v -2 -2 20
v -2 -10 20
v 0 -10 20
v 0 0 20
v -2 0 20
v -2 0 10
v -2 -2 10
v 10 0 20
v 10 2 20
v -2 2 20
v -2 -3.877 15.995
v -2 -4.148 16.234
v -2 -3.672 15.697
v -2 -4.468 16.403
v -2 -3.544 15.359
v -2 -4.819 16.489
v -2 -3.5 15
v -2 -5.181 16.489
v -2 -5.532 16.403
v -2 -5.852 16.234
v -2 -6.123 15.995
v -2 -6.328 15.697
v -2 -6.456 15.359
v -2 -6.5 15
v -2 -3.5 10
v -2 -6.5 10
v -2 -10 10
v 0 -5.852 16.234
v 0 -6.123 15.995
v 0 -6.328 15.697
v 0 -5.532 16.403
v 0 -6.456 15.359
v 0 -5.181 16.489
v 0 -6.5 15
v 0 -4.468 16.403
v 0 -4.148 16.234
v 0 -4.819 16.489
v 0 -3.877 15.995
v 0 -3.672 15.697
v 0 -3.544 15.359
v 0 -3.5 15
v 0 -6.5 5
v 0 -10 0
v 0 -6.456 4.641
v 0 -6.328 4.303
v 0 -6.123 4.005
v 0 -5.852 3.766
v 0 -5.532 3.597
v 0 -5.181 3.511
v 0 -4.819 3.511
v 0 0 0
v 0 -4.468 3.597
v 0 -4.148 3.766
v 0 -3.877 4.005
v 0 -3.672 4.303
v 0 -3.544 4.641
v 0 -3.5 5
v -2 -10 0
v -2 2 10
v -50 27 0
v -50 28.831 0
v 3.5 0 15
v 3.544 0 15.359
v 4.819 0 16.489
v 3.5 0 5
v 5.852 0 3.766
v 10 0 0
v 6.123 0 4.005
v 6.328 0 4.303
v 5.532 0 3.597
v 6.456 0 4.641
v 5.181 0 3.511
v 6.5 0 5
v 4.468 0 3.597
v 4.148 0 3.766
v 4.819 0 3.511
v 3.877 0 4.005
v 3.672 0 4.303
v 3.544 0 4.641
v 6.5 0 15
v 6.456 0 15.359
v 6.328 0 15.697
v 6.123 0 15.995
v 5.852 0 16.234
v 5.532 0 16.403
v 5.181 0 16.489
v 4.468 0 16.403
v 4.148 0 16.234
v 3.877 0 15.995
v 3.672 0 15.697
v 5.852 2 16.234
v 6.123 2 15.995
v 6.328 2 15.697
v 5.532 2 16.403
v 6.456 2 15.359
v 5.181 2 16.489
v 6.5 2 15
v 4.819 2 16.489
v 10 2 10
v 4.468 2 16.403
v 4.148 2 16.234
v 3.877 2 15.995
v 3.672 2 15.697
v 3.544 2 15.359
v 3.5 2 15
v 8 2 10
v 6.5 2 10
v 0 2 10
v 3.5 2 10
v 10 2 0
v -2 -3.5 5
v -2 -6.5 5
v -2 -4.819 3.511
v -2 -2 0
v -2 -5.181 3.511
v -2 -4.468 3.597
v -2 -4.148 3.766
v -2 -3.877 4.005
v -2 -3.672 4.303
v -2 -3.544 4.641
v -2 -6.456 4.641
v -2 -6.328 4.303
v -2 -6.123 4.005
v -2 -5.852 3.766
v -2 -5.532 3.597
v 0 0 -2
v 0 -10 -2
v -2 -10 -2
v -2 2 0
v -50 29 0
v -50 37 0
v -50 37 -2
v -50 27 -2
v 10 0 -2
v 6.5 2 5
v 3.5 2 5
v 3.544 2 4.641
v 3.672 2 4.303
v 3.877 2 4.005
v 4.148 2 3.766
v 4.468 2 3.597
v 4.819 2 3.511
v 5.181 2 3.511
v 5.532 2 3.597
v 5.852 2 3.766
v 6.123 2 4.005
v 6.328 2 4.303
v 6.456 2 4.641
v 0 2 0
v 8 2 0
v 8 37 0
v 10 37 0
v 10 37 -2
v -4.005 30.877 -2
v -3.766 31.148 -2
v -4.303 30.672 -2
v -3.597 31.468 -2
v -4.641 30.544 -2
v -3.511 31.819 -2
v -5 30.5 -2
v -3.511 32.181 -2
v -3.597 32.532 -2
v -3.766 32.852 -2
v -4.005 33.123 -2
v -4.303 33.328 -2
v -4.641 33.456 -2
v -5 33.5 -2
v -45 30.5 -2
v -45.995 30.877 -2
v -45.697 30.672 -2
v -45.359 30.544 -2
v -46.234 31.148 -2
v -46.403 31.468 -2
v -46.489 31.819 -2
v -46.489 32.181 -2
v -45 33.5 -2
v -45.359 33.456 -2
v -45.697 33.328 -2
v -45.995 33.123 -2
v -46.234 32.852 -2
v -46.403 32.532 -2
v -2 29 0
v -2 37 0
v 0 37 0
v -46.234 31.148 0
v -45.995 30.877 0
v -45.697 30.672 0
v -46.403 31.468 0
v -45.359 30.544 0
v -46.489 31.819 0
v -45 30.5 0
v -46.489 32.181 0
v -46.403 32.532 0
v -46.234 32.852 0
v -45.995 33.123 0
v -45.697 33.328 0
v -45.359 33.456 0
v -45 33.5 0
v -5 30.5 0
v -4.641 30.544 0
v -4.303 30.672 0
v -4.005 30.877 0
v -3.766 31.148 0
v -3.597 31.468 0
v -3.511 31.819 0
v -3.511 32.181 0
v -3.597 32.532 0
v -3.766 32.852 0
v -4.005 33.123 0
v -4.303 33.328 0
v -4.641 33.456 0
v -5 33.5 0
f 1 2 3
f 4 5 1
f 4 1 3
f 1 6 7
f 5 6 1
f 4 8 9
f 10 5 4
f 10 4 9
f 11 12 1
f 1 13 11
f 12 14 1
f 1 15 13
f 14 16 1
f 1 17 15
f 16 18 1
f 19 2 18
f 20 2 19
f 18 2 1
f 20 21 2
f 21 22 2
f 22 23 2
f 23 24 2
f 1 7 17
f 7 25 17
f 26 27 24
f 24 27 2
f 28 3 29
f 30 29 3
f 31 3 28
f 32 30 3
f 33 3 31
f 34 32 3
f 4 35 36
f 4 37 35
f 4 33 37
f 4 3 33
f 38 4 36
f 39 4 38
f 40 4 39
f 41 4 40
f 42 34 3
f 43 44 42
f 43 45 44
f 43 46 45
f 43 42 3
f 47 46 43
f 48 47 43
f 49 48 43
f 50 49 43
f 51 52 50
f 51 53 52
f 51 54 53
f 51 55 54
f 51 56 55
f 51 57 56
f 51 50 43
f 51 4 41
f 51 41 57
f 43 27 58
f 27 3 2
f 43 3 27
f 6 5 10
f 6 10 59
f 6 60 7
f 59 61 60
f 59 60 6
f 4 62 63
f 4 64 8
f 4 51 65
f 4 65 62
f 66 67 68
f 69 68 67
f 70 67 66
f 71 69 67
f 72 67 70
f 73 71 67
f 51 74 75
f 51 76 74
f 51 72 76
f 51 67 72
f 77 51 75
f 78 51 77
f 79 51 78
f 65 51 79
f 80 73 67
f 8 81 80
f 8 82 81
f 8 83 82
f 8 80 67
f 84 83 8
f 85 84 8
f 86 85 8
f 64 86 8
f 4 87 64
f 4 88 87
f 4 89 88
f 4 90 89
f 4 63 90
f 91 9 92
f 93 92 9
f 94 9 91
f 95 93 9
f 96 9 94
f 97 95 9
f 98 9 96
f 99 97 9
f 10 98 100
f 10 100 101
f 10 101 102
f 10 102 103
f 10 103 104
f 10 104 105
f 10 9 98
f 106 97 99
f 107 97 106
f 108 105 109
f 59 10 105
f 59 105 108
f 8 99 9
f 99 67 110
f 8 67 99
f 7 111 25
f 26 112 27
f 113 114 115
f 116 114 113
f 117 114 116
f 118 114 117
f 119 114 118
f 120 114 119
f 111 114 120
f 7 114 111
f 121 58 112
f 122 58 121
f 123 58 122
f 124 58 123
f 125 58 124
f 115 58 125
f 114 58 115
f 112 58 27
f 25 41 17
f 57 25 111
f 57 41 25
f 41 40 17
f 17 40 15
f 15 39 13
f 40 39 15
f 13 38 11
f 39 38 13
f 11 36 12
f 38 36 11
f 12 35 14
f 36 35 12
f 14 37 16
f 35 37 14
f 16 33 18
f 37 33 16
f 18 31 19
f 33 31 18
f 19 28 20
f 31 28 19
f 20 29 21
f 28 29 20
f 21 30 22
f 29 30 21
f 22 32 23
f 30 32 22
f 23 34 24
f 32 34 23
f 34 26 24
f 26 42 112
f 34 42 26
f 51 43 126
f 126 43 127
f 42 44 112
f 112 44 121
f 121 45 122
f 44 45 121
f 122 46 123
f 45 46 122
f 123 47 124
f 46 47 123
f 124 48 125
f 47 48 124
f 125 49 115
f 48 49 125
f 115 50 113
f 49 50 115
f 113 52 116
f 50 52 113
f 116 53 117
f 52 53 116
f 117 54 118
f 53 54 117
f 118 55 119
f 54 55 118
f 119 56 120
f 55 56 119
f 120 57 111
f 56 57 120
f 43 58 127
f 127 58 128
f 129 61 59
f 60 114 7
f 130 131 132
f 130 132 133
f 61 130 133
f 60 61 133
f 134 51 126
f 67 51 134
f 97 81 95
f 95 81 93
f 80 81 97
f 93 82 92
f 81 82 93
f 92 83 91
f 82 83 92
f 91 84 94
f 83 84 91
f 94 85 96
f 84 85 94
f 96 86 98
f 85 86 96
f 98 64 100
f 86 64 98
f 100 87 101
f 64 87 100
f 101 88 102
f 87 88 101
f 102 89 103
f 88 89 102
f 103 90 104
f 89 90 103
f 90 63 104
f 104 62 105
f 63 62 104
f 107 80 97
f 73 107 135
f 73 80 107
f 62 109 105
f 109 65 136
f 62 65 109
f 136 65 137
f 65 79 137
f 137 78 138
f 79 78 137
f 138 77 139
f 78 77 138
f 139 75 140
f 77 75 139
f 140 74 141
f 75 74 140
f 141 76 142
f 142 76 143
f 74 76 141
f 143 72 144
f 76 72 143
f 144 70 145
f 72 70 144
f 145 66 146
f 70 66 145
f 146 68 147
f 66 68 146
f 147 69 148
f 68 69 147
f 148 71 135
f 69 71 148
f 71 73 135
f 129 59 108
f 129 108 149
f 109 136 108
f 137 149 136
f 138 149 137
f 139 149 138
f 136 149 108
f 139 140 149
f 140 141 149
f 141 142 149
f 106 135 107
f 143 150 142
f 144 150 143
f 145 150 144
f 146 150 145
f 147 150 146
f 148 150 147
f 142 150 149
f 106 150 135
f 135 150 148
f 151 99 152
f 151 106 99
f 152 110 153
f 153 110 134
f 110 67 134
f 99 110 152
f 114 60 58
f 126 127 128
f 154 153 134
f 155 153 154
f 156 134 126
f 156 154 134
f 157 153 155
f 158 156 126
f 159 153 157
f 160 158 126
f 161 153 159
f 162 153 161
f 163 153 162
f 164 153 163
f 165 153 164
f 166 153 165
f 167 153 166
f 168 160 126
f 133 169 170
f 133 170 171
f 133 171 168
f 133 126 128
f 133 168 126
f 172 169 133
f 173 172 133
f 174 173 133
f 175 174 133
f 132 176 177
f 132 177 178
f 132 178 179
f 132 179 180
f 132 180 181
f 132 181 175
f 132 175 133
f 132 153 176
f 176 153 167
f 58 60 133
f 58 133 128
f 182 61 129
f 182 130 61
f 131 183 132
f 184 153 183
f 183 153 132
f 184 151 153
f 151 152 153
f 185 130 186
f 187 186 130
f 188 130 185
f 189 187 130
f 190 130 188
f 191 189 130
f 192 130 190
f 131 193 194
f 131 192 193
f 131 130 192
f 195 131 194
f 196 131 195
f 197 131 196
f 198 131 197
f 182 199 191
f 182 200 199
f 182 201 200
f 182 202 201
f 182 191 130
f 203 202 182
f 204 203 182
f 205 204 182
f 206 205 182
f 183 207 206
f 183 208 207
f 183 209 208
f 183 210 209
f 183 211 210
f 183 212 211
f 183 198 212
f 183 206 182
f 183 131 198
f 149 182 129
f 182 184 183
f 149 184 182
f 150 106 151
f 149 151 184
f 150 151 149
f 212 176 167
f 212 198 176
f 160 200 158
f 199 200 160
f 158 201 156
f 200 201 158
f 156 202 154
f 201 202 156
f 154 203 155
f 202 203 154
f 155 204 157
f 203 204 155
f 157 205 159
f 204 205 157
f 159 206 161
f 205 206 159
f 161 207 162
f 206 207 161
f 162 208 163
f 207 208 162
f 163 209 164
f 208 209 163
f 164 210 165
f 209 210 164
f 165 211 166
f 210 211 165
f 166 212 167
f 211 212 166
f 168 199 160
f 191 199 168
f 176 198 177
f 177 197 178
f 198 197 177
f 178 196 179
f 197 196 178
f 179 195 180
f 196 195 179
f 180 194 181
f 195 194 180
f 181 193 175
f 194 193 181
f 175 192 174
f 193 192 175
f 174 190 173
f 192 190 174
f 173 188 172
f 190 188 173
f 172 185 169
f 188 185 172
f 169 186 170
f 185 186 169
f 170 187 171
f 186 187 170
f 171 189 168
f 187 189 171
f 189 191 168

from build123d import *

# Parameters (mm, degrees)
SKETCH_W             = 2
SKETCH_H             = 20
PAD_DEPTH            = 10
POCKET_DEPTH         = 2
SKETCH003_W          = 2
SKETCH003_H          = 20
PAD001_DEPTH         = 10
PAD001_DEPTH_BACK    = 2
POCKET001_DEPTH      = 2.001
PAD002_DEPTH         = 2
PAD003_DEPTH         = 10
PAD003_DEPTH_BACK    = 29
PAD004_DEPTH         = 10
POCKET002_DEPTH      = 2
POCKET002_DEPTH_BACK = -8
POCKET003_DEPTH      = 20.001
POCKET004_DEPTH      = 20.001
POCKET005_DEPTH      = 2.001


with BuildPart() as part:
    # Sketch → Pad (new body)
    with BuildSketch(Plane.XZ):
        with Locations((-1, 10)):
            Rectangle(SKETCH_W, SKETCH_H)
    extrude(amount=PAD_DEPTH)

    # Sketch002 → Pocket (cut)
    with BuildSketch(Plane.YZ):
        with BuildLine():
            ThreePointArc((-3.5, 15), (-5, 16.5), (-6.5, 15))
            Line((-6.5, 15), (-6.5, 5))
            ThreePointArc((-6.5, 5), (-5, 3.5), (-3.5, 5))
            Line((-3.5, 15), (-3.5, 5))
        make_face()
    extrude(amount=-POCKET_DEPTH, mode=Mode.SUBTRACT)

    # Sketch003 → Pad001 (join, two sides)
    with BuildSketch(Plane.YZ) as pad001_sk:
        with Locations((1, 10)):
            Rectangle(SKETCH003_W, SKETCH003_H)
    extrude(amount=PAD001_DEPTH)
    extrude(pad001_sk.sketch, amount=-PAD001_DEPTH_BACK)

    # Sketch001 → Pocket001 (cut, through all)
    with BuildSketch(Plane.XZ):
        with BuildLine():
            ThreePointArc((6.5, 15), (5, 16.5), (3.5, 15))
            Line((3.5, 15), (3.5, 5))
            ThreePointArc((3.5, 5), (5, 3.5), (6.5, 5))
            Line((6.5, 15), (6.5, 5))
        make_face()
    extrude(amount=-POCKET001_DEPTH, mode=Mode.SUBTRACT)

    # Sketch004 → Pad002 (join)
    with BuildSketch(Plane.XY):
        Polygon((-50, 37), (10, 37), (10, 0), (0, 0), (0, -10), (-2, -10), (-50, 27), align=None)
    extrude(amount=-PAD002_DEPTH)

    # Sketch005 → Pad003 (join, two sides)
    with BuildSketch(Plane.XZ) as pad003_sk:
        Polygon((-2, 0), (-50, 0), (-2, 10), align=None)
    extrude(amount=PAD003_DEPTH)
    extrude(pad003_sk.sketch, amount=-PAD003_DEPTH_BACK)

    # Sketch006 → Pad004 (join)
    with BuildSketch(Plane.YZ):
        Polygon((2, 10), (2, 0), (37, 0), align=None)
    extrude(amount=PAD004_DEPTH)

    # Sketch007 → Pocket002 (cut, two sides)
    with BuildSketch(Plane.YZ) as pocket002_sk:
        Polygon((2, 10), (2, 0), (37, 0), align=None)
    extrude(amount=-POCKET002_DEPTH, mode=Mode.SUBTRACT)
    extrude(pocket002_sk.sketch, amount=-POCKET002_DEPTH_BACK, mode=Mode.SUBTRACT)

    # Sketch008 → Pocket003 (cut, through all)
    with BuildSketch(Plane.XY):
        Polygon((-50, 27), (-2, -2), (-2, -12), (-50, -12), align=None)
    extrude(amount=POCKET003_DEPTH, mode=Mode.SUBTRACT)

    # Sketch009 → Pocket004 (cut, through all)
    with BuildSketch(Plane.XY):
        Polygon((-2, 2), (-2, 37), (-50, 37), (-50, 28.830978), align=None)
    extrude(amount=POCKET004_DEPTH, mode=Mode.SUBTRACT)

    # Sketch010 → Pocket005 (cut, through all)
    with BuildSketch(Plane.XY):
        with BuildLine():
            ThreePointArc((-45, 33.5), (-46.5, 32), (-45, 30.5))
            Line((-45, 30.5), (-5, 30.5))
            ThreePointArc((-5, 30.5), (-3.5, 32), (-5, 33.5))
            Line((-45, 33.5), (-5, 33.5))
        make_face()
    extrude(amount=-POCKET005_DEPTH, mode=Mode.SUBTRACT)


solid = part.part
